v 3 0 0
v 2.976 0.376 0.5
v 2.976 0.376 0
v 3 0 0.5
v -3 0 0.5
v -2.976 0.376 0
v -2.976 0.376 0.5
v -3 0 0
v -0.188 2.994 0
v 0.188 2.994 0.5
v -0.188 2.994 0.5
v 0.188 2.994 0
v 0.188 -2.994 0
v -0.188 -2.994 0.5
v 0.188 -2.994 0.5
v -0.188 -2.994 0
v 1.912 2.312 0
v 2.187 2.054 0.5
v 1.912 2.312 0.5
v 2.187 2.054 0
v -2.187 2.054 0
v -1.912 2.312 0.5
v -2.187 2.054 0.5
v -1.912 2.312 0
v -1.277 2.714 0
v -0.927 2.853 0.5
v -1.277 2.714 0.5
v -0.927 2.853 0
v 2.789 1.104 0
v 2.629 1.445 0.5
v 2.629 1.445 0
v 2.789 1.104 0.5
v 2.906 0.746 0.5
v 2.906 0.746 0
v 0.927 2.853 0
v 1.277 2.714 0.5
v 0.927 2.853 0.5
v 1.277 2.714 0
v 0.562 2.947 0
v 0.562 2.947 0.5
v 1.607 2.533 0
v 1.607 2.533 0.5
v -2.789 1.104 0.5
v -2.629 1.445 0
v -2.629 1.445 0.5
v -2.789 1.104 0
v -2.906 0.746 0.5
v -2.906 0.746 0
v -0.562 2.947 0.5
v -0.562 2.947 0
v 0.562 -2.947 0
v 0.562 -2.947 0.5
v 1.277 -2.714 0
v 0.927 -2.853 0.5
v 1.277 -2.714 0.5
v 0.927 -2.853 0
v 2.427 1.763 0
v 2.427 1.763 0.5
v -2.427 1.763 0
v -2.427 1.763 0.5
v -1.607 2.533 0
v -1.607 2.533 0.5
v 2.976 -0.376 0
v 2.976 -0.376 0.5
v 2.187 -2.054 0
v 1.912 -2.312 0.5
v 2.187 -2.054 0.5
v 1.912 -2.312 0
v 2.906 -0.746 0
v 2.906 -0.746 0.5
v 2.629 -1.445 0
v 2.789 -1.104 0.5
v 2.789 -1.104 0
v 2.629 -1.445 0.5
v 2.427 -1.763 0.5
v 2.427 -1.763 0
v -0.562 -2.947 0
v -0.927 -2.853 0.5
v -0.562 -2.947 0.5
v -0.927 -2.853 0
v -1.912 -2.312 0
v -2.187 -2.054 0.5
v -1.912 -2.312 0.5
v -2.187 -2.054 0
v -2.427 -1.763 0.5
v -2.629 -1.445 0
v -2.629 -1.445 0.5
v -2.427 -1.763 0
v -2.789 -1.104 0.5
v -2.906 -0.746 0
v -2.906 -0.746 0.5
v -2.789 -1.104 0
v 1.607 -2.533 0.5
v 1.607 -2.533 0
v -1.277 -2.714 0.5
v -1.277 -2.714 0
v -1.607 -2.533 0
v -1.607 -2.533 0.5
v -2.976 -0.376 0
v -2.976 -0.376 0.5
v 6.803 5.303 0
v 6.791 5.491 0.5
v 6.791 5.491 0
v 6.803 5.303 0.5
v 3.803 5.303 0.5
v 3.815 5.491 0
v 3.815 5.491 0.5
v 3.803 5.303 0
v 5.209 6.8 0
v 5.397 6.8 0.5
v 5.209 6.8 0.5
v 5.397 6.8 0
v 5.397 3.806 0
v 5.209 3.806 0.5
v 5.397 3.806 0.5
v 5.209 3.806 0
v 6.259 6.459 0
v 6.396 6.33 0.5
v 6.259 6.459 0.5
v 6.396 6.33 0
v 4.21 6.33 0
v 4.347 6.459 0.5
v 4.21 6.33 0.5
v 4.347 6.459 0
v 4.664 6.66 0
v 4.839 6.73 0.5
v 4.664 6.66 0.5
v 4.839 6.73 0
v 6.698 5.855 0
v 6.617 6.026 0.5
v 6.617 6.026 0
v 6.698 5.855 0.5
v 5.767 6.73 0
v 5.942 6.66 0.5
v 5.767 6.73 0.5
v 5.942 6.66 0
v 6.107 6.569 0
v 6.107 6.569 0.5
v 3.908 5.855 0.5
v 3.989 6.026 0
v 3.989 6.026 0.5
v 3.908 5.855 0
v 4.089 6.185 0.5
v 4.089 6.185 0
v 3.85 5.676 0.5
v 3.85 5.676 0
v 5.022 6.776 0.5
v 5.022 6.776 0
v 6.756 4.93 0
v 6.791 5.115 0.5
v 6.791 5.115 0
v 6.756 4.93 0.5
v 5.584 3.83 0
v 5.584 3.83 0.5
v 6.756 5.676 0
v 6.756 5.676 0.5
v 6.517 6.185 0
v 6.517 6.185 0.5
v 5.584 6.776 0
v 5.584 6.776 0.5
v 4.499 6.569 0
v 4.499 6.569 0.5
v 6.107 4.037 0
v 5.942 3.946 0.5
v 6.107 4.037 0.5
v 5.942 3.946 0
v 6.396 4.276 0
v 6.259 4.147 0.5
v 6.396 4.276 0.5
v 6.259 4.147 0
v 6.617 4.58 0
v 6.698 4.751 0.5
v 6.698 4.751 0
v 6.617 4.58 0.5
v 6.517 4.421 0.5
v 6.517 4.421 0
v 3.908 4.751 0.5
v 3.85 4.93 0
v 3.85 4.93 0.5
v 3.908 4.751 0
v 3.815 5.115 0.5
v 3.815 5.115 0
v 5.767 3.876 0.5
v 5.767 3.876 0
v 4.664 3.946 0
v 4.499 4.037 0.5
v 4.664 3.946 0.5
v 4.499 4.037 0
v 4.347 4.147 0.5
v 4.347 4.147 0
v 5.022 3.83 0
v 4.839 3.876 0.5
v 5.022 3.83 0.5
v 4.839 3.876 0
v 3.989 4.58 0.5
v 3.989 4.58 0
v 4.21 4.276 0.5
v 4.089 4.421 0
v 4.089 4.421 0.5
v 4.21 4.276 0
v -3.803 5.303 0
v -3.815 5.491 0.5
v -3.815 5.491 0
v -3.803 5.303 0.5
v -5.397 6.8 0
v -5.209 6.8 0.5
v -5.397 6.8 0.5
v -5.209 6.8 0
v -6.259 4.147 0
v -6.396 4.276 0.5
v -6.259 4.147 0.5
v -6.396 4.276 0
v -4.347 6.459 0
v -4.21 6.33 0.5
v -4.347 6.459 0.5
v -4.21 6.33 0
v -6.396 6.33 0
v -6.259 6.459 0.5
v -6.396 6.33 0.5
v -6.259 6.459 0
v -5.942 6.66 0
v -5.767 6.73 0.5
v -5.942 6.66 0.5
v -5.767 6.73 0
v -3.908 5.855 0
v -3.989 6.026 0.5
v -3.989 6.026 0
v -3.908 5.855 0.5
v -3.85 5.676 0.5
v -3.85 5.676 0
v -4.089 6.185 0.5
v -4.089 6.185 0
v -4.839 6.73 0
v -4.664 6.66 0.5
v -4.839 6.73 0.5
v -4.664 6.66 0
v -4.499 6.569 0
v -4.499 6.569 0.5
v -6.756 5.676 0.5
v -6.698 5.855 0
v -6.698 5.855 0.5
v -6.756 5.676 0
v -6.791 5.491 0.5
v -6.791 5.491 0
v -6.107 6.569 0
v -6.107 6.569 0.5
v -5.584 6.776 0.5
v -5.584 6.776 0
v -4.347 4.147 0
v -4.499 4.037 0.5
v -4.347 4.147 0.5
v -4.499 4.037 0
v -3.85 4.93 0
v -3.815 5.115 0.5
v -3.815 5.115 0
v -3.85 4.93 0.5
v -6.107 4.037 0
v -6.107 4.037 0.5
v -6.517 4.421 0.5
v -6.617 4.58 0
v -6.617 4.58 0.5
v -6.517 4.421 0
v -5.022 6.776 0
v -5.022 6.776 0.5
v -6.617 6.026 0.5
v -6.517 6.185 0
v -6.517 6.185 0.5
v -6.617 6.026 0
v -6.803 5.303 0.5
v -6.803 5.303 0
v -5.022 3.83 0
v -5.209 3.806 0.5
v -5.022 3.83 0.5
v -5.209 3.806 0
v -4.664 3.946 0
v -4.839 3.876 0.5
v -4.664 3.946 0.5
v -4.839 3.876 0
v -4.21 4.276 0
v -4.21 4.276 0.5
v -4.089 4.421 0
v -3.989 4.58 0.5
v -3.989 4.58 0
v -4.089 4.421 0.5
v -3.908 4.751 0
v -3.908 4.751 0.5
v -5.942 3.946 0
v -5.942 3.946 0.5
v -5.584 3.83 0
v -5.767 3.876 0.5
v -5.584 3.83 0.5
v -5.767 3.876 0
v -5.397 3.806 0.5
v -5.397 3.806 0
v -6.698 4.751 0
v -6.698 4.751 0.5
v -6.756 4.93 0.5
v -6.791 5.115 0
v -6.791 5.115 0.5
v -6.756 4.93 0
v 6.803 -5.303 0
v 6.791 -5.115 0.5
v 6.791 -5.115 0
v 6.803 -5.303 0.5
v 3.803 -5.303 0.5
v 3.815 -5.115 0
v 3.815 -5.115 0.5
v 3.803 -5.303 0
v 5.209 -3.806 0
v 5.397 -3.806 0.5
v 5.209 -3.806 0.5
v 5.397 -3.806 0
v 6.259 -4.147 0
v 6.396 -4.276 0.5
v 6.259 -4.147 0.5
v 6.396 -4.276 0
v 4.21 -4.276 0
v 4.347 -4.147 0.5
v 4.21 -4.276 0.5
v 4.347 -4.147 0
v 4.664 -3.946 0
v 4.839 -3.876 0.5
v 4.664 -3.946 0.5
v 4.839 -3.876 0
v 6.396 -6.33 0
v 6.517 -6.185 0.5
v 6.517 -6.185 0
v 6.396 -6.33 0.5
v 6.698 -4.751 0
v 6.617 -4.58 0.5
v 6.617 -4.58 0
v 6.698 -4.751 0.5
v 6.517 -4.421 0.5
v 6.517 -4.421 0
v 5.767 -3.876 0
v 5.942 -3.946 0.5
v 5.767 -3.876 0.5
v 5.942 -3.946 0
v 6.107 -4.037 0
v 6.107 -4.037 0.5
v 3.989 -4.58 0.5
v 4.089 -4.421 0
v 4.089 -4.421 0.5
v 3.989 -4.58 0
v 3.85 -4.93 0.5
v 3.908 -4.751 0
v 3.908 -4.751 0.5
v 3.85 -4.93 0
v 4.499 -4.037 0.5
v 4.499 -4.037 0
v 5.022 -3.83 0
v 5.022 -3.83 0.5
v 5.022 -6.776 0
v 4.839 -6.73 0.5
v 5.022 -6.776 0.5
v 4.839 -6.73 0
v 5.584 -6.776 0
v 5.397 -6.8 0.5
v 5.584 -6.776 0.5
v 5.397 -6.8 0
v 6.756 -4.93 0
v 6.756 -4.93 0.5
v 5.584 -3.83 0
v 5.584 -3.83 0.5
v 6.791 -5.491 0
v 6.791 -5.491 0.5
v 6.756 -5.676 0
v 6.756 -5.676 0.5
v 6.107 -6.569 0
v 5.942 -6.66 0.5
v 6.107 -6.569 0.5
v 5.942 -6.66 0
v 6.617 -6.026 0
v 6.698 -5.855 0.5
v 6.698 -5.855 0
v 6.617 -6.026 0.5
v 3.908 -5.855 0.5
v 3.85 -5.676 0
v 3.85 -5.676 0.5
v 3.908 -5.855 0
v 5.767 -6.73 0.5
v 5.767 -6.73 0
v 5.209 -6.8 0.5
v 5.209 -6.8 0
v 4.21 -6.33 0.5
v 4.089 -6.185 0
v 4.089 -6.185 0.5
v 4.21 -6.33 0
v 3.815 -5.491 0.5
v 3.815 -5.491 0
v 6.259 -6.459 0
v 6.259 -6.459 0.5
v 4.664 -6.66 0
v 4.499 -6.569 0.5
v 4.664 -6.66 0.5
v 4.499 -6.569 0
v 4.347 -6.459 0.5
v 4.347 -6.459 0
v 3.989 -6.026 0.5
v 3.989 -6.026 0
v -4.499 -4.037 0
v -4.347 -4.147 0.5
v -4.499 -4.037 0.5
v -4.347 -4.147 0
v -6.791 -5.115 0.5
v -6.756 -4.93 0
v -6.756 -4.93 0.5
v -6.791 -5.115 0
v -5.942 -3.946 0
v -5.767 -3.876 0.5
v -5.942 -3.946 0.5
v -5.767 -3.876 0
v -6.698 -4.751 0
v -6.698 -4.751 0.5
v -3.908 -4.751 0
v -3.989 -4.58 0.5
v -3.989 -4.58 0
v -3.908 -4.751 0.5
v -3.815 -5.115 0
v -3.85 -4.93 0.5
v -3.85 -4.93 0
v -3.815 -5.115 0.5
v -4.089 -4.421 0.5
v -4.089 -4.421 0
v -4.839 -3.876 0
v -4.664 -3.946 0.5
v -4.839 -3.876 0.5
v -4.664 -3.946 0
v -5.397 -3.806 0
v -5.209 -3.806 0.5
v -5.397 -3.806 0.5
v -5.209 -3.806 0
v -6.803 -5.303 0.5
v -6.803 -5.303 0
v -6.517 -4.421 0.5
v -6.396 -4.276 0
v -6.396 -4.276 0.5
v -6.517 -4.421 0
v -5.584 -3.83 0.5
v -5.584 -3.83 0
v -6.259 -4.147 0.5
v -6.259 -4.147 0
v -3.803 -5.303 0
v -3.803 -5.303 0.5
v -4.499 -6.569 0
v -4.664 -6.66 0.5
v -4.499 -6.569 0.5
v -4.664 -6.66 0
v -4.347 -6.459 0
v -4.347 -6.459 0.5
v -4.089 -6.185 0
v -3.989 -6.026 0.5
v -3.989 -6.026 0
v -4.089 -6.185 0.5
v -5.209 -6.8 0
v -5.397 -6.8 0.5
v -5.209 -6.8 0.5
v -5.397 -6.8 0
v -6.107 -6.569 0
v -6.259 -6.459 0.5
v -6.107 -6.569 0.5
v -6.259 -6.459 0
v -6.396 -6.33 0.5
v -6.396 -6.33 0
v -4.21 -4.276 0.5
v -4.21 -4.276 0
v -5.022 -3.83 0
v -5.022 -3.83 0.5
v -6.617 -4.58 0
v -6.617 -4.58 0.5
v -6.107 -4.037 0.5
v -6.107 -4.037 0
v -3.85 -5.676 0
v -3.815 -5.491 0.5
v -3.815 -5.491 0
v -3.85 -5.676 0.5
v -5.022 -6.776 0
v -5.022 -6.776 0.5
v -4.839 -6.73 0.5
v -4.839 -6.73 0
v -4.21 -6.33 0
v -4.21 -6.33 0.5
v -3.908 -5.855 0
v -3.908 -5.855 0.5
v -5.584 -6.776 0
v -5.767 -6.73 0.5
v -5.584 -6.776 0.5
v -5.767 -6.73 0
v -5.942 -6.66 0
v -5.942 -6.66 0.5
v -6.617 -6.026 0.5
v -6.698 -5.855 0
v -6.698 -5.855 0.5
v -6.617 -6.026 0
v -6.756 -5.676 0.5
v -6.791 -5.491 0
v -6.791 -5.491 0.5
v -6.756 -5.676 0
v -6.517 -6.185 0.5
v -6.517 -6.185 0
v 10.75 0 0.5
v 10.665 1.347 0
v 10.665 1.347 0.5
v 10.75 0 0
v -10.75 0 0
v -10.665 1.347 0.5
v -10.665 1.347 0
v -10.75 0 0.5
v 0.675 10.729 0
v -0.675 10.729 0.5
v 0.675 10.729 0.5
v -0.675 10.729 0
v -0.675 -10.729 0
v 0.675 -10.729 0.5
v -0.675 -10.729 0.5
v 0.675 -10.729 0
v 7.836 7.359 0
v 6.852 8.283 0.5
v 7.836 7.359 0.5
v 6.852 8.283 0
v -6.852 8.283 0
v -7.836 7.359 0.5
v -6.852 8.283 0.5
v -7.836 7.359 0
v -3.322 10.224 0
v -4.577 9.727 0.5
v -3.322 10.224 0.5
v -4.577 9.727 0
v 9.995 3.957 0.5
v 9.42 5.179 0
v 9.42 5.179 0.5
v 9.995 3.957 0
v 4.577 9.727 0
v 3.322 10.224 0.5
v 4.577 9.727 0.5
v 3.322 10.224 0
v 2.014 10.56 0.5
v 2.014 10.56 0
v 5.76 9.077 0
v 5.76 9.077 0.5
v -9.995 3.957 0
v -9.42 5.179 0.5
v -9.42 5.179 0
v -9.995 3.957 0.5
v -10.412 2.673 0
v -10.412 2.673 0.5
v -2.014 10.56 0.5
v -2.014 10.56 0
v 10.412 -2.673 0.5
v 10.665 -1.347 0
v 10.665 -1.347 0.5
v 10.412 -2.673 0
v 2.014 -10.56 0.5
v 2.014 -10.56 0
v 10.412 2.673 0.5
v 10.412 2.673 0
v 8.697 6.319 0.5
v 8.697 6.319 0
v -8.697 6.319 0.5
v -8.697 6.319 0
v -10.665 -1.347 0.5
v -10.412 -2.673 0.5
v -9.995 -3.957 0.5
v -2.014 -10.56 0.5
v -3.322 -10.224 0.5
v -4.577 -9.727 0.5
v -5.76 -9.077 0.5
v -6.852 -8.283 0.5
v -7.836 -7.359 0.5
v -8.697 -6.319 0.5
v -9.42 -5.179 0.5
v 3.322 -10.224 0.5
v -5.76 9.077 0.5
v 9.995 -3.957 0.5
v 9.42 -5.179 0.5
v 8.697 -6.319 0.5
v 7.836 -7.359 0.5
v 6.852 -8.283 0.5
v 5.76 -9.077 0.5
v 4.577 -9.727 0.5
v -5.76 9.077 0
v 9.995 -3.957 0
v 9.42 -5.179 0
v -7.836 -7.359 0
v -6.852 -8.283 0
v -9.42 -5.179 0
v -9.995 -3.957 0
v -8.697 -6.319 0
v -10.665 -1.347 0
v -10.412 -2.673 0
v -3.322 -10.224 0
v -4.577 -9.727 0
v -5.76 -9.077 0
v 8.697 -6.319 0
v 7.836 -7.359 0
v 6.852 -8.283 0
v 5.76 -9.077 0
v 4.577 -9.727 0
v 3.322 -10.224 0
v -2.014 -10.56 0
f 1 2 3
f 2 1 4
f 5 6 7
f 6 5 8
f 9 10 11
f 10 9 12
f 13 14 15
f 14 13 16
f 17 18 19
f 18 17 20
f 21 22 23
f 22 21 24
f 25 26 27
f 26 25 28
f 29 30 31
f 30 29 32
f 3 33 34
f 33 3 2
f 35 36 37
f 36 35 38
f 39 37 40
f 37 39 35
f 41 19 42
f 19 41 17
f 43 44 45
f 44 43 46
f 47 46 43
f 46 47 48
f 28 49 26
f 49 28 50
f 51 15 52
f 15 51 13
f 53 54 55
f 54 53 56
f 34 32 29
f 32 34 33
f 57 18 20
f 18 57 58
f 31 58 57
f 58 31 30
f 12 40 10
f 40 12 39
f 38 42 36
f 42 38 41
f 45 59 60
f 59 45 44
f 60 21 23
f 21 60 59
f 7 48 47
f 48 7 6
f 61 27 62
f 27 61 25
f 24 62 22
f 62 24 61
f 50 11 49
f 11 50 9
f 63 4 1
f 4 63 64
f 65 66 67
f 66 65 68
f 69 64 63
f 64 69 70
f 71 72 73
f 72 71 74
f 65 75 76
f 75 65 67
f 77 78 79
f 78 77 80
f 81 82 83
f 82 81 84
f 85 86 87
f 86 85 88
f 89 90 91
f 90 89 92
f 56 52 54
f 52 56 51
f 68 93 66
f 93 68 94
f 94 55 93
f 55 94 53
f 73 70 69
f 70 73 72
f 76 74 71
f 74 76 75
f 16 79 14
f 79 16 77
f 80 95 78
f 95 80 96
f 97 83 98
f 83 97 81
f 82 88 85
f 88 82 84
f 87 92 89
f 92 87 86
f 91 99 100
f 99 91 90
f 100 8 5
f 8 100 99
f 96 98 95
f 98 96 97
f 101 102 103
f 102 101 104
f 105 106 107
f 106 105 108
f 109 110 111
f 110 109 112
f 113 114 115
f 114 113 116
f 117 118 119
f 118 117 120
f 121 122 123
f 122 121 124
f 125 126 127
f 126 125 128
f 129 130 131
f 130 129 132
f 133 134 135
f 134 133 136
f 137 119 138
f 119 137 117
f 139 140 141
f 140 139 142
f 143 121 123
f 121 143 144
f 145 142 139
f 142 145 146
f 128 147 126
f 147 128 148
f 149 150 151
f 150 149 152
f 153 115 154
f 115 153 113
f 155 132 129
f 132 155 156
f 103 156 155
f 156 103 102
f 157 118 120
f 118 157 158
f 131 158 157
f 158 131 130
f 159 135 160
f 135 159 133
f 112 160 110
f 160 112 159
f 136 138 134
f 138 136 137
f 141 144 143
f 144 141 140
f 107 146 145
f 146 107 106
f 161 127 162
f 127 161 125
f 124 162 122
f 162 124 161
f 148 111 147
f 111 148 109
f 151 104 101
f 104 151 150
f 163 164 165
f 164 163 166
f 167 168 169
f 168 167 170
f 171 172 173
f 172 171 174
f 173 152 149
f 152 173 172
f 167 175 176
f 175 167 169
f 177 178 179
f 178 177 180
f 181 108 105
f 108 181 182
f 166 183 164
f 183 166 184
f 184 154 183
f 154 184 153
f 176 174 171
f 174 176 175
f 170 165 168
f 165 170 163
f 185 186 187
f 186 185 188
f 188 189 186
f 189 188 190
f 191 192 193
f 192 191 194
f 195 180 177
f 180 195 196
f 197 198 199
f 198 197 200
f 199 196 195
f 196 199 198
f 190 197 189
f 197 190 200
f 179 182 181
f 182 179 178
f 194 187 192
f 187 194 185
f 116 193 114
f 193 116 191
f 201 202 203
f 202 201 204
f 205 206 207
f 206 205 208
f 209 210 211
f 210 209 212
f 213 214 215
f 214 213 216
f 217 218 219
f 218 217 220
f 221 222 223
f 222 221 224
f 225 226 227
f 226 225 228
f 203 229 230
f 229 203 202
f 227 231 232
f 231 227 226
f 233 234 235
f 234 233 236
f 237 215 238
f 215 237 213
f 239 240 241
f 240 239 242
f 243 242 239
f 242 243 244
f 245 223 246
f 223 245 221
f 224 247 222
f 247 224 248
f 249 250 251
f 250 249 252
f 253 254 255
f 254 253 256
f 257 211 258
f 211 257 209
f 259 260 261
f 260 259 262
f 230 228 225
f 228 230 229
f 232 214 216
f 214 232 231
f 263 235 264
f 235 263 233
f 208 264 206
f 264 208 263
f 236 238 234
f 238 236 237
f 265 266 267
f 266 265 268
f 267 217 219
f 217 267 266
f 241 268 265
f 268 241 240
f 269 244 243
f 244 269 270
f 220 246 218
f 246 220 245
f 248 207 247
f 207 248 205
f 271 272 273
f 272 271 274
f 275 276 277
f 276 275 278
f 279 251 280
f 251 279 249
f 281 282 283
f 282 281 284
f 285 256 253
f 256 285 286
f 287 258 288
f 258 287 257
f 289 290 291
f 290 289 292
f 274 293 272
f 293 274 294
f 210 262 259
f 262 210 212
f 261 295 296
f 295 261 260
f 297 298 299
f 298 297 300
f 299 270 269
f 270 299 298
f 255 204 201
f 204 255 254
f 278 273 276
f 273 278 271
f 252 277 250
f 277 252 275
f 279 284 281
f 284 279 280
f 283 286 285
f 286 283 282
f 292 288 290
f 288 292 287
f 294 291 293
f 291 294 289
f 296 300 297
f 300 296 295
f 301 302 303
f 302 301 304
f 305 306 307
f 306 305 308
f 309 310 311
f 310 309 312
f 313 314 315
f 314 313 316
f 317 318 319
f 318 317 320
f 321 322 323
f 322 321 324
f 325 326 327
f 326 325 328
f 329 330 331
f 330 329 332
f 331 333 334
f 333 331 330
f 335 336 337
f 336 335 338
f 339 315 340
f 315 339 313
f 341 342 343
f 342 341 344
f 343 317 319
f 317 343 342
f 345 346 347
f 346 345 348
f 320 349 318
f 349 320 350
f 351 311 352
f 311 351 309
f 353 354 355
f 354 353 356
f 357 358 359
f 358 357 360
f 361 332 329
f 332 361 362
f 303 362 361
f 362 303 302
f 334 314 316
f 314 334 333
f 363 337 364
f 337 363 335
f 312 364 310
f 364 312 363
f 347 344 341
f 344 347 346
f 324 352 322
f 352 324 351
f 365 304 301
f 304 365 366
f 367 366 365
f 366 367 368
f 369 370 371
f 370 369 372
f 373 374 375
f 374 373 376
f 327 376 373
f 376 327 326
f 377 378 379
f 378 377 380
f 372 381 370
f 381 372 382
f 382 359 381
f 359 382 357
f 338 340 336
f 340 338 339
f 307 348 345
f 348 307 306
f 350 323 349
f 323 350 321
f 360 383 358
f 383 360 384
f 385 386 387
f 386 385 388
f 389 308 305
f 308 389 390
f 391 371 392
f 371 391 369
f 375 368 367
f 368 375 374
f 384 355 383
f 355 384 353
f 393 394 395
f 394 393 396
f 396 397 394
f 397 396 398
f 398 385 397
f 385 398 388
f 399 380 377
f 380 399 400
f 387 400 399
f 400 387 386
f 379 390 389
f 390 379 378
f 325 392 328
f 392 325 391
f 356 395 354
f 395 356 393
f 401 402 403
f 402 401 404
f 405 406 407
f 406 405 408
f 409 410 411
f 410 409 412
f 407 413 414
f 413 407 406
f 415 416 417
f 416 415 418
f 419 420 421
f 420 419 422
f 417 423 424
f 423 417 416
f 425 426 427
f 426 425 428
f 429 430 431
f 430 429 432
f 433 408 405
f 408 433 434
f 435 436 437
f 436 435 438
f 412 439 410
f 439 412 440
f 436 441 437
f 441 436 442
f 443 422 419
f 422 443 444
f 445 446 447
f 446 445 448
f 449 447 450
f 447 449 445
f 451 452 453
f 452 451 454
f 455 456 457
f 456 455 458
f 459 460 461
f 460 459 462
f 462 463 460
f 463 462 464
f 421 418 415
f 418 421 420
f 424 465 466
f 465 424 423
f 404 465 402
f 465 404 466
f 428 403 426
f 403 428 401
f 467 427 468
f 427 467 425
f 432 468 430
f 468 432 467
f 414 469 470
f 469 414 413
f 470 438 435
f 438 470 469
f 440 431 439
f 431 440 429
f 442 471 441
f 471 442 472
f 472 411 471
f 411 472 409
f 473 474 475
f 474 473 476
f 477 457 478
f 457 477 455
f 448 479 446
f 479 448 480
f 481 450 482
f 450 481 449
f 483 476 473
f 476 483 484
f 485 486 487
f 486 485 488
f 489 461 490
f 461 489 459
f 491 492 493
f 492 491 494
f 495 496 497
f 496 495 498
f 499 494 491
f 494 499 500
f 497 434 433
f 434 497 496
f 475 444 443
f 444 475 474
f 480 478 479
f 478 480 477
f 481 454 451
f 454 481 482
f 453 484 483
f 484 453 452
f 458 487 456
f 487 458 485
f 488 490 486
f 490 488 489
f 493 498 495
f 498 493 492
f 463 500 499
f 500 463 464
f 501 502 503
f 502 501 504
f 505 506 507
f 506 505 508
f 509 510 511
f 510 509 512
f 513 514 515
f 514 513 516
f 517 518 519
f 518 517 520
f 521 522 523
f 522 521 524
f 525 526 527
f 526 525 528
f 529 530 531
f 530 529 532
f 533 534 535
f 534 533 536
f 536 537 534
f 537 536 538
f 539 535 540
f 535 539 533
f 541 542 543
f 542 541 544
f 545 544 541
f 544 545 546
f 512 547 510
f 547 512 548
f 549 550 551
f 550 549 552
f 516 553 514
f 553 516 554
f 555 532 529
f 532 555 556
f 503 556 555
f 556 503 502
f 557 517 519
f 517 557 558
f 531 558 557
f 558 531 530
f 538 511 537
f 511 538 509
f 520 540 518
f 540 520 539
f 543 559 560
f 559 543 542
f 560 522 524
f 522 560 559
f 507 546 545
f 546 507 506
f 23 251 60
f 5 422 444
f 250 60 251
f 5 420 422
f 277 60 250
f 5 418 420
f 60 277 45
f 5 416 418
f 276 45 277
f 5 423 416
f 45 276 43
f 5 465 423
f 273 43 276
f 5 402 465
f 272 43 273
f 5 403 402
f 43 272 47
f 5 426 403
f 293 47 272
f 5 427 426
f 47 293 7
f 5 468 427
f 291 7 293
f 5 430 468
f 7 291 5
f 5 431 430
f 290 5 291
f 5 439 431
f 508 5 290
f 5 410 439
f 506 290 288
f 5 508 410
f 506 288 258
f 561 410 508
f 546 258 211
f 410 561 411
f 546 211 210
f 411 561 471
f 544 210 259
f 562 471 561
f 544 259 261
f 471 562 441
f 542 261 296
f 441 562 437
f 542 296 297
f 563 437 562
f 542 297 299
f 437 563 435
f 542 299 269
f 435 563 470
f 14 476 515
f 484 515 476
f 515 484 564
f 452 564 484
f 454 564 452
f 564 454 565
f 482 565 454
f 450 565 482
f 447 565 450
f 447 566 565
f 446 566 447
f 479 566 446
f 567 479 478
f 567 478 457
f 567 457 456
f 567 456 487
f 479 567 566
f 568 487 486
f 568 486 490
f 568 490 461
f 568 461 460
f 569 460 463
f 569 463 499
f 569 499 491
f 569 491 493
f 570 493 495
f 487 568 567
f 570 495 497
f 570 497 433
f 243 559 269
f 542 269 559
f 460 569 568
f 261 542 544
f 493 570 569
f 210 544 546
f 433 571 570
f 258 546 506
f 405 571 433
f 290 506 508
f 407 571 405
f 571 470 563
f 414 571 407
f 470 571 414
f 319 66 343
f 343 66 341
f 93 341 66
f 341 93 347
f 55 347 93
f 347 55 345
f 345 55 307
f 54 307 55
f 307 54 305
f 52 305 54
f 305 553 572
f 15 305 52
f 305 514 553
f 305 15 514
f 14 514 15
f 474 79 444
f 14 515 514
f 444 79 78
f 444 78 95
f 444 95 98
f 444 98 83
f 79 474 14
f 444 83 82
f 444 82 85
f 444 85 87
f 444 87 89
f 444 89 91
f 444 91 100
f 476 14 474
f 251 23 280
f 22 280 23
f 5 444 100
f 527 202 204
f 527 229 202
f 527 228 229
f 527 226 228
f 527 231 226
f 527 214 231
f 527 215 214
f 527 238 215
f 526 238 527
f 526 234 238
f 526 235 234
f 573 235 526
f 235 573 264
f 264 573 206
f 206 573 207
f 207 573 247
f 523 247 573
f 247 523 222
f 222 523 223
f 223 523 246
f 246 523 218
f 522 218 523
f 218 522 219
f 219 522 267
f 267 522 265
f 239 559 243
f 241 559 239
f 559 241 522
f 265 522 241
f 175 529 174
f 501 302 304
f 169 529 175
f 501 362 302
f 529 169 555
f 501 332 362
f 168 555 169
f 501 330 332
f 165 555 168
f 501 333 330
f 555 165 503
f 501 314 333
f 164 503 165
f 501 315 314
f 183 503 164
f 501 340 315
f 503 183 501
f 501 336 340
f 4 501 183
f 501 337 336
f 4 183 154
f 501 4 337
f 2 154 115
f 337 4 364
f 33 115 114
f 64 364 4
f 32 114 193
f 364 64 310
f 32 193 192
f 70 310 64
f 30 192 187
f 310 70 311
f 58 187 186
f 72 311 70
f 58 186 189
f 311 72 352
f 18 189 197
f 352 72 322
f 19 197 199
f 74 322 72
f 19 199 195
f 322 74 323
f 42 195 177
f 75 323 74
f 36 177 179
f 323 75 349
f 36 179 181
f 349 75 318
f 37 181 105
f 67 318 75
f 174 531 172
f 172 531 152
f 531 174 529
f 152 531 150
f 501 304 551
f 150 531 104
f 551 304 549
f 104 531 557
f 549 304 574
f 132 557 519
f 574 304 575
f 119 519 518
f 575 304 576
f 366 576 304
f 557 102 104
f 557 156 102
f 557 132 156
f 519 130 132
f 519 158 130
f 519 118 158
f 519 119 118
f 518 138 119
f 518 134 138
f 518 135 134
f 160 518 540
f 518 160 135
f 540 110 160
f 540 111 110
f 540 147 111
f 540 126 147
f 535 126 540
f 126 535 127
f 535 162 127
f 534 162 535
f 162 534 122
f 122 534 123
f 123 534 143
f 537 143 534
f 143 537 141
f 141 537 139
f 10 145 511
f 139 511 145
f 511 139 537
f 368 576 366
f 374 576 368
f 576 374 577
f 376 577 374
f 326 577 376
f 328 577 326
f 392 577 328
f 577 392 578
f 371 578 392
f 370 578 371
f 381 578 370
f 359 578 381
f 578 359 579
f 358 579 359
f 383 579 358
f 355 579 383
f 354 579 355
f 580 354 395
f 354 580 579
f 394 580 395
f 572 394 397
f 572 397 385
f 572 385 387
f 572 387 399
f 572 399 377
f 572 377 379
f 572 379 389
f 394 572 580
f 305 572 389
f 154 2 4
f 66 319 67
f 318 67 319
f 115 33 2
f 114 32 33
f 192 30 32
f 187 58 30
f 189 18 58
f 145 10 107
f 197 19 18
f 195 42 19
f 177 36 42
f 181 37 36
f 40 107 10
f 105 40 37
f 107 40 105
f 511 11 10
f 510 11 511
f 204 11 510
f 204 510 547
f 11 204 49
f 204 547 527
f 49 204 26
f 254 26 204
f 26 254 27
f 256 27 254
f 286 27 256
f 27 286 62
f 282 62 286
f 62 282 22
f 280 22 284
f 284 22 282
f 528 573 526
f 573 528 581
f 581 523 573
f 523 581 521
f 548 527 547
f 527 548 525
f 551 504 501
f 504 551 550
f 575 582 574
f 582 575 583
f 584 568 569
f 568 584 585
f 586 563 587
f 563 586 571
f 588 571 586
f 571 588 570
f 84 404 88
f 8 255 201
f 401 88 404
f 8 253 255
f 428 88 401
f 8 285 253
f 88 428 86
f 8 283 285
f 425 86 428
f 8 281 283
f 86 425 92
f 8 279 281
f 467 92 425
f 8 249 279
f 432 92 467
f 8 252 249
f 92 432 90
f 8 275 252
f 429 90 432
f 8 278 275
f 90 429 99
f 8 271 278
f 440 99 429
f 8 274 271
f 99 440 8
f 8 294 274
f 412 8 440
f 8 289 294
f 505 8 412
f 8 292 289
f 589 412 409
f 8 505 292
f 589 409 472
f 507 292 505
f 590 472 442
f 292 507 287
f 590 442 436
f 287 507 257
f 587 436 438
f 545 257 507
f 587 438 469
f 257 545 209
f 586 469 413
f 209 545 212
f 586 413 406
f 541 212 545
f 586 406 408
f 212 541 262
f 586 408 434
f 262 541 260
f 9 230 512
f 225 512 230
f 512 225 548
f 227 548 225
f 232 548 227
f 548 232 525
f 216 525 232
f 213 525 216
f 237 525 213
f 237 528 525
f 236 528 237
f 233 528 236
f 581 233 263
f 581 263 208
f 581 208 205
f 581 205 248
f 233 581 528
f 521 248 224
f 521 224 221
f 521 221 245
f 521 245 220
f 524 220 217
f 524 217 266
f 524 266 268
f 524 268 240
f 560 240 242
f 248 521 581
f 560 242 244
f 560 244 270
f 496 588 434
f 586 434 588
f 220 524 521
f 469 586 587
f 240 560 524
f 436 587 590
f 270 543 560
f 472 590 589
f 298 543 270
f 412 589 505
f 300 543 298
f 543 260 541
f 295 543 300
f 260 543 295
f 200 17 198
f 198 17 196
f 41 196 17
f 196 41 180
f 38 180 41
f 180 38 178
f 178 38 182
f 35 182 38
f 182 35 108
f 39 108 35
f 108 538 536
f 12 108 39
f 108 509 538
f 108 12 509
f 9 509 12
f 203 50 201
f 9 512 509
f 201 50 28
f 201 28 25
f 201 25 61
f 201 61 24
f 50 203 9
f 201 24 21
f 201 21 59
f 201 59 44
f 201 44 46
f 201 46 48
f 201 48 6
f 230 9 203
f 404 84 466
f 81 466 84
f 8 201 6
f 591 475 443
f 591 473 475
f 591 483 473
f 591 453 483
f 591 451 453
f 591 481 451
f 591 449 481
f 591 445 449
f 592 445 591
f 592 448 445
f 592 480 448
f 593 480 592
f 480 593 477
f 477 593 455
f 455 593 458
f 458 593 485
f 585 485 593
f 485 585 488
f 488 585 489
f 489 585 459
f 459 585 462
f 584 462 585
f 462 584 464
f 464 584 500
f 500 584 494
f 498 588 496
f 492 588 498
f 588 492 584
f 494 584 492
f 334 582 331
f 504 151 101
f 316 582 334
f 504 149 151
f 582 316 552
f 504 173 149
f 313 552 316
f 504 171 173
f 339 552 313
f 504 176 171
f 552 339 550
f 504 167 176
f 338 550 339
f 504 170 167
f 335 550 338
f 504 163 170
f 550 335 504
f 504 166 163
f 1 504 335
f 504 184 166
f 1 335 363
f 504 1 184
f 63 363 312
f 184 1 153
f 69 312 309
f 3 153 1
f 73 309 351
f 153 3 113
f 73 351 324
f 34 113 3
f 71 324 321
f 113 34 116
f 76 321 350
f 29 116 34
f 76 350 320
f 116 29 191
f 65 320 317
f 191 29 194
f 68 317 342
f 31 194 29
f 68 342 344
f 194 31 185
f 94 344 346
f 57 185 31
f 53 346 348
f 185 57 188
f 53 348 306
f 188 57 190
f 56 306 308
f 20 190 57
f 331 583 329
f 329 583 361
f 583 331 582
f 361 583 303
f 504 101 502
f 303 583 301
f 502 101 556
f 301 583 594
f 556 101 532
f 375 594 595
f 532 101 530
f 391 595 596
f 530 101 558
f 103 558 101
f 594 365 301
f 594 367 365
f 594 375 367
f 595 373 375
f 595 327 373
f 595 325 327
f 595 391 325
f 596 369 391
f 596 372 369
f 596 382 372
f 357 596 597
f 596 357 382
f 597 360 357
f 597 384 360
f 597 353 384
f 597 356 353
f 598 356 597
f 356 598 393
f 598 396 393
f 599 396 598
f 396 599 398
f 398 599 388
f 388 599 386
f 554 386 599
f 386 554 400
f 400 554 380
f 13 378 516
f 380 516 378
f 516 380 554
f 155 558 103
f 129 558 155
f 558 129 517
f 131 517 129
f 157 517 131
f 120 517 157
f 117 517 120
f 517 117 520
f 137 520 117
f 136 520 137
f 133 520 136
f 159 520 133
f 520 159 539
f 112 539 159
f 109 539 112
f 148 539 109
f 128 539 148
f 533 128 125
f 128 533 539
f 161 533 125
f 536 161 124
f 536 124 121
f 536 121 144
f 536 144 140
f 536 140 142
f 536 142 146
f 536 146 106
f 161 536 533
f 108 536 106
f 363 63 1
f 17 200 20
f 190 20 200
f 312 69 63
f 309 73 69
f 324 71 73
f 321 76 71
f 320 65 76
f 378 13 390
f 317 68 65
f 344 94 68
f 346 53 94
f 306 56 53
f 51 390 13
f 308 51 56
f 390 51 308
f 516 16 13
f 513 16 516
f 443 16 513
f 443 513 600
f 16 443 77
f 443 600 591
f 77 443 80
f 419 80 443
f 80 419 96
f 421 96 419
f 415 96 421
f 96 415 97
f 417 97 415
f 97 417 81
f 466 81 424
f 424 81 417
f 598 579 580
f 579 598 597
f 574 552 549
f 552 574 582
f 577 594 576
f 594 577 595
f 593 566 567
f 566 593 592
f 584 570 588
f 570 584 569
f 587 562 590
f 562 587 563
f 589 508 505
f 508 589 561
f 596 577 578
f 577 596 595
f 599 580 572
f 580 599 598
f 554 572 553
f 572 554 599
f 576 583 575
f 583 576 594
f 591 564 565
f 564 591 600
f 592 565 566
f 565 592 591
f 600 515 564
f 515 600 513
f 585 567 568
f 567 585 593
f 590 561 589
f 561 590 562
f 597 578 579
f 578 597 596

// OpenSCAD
$fn = 50;


difference() {
	union() {
		*color(alpha = 1.0000000000, c = "gray") {
			translate(v = [0, 7, 0]) {
				linear_extrude(height = 1) {
					text(font = "Arial:style=Bold", halign = "center", size = 4.5000000000, text = "COMMENT circle main", valign = "center");
				}
			}
		}
		cylinder(h = 0.5000000000, r = 10.7500000000);
	}
	union() {
		*color(alpha = 1.0000000000, c = "gray") {
			translate(v = [0, 7, 0]) {
				linear_extrude(height = 1) {
					text(font = "Arial:style=Bold", halign = "center", size = 4.5000000000, text = "COMMENT holes main", valign = "center");
				}
			}
		}
		translate(v = [0.0000000000, 0.0000000000, -50.0000000000]) {
			cylinder(h = 100, r = 3.0000000000);
		}
		translate(v = [0.0000000000, 0.0000000000, -50.0000000000]) {
			cylinder(h = 100, r = 3.0000000000);
		}
		translate(v = [0.0000000000, 0.0000000000, -50.0000000000]) {
			cylinder(h = 100, r = 3.0000000000);
		}
		translate(v = [0.0000000000, 0.0000000000, -50.0000000000]) {
			cylinder(h = 100, r = 1.5000000000);
		}
		translate(v = [0.0000000000, 0.0000000000, -50.0000000000]) {
			cylinder(h = 100, r = 1.5000000000);
		}
		translate(v = [0.0000000000, 0.0000000000, -50.0000000000]) {
			cylinder(h = 100, r = 1.5000000000);
		}
		#translate(v = [5.3030000000, 5.3030000000, -50.0000000000]) {
			cylinder(h = 100, r = 1.5000000000);
		}
		#translate(v = [-5.3030000000, 5.3030000000, -50.0000000000]) {
			cylinder(h = 100, r = 1.5000000000);
		}
		#translate(v = [5.3030000000, -5.3030000000, -50.0000000000]) {
			cylinder(h = 100, r = 1.5000000000);
		}
		#translate(v = [-5.3030000000, -5.3030000000, -50.0000000000]) {
			cylinder(h = 100, r = 1.5000000000);
		}
	}
}
